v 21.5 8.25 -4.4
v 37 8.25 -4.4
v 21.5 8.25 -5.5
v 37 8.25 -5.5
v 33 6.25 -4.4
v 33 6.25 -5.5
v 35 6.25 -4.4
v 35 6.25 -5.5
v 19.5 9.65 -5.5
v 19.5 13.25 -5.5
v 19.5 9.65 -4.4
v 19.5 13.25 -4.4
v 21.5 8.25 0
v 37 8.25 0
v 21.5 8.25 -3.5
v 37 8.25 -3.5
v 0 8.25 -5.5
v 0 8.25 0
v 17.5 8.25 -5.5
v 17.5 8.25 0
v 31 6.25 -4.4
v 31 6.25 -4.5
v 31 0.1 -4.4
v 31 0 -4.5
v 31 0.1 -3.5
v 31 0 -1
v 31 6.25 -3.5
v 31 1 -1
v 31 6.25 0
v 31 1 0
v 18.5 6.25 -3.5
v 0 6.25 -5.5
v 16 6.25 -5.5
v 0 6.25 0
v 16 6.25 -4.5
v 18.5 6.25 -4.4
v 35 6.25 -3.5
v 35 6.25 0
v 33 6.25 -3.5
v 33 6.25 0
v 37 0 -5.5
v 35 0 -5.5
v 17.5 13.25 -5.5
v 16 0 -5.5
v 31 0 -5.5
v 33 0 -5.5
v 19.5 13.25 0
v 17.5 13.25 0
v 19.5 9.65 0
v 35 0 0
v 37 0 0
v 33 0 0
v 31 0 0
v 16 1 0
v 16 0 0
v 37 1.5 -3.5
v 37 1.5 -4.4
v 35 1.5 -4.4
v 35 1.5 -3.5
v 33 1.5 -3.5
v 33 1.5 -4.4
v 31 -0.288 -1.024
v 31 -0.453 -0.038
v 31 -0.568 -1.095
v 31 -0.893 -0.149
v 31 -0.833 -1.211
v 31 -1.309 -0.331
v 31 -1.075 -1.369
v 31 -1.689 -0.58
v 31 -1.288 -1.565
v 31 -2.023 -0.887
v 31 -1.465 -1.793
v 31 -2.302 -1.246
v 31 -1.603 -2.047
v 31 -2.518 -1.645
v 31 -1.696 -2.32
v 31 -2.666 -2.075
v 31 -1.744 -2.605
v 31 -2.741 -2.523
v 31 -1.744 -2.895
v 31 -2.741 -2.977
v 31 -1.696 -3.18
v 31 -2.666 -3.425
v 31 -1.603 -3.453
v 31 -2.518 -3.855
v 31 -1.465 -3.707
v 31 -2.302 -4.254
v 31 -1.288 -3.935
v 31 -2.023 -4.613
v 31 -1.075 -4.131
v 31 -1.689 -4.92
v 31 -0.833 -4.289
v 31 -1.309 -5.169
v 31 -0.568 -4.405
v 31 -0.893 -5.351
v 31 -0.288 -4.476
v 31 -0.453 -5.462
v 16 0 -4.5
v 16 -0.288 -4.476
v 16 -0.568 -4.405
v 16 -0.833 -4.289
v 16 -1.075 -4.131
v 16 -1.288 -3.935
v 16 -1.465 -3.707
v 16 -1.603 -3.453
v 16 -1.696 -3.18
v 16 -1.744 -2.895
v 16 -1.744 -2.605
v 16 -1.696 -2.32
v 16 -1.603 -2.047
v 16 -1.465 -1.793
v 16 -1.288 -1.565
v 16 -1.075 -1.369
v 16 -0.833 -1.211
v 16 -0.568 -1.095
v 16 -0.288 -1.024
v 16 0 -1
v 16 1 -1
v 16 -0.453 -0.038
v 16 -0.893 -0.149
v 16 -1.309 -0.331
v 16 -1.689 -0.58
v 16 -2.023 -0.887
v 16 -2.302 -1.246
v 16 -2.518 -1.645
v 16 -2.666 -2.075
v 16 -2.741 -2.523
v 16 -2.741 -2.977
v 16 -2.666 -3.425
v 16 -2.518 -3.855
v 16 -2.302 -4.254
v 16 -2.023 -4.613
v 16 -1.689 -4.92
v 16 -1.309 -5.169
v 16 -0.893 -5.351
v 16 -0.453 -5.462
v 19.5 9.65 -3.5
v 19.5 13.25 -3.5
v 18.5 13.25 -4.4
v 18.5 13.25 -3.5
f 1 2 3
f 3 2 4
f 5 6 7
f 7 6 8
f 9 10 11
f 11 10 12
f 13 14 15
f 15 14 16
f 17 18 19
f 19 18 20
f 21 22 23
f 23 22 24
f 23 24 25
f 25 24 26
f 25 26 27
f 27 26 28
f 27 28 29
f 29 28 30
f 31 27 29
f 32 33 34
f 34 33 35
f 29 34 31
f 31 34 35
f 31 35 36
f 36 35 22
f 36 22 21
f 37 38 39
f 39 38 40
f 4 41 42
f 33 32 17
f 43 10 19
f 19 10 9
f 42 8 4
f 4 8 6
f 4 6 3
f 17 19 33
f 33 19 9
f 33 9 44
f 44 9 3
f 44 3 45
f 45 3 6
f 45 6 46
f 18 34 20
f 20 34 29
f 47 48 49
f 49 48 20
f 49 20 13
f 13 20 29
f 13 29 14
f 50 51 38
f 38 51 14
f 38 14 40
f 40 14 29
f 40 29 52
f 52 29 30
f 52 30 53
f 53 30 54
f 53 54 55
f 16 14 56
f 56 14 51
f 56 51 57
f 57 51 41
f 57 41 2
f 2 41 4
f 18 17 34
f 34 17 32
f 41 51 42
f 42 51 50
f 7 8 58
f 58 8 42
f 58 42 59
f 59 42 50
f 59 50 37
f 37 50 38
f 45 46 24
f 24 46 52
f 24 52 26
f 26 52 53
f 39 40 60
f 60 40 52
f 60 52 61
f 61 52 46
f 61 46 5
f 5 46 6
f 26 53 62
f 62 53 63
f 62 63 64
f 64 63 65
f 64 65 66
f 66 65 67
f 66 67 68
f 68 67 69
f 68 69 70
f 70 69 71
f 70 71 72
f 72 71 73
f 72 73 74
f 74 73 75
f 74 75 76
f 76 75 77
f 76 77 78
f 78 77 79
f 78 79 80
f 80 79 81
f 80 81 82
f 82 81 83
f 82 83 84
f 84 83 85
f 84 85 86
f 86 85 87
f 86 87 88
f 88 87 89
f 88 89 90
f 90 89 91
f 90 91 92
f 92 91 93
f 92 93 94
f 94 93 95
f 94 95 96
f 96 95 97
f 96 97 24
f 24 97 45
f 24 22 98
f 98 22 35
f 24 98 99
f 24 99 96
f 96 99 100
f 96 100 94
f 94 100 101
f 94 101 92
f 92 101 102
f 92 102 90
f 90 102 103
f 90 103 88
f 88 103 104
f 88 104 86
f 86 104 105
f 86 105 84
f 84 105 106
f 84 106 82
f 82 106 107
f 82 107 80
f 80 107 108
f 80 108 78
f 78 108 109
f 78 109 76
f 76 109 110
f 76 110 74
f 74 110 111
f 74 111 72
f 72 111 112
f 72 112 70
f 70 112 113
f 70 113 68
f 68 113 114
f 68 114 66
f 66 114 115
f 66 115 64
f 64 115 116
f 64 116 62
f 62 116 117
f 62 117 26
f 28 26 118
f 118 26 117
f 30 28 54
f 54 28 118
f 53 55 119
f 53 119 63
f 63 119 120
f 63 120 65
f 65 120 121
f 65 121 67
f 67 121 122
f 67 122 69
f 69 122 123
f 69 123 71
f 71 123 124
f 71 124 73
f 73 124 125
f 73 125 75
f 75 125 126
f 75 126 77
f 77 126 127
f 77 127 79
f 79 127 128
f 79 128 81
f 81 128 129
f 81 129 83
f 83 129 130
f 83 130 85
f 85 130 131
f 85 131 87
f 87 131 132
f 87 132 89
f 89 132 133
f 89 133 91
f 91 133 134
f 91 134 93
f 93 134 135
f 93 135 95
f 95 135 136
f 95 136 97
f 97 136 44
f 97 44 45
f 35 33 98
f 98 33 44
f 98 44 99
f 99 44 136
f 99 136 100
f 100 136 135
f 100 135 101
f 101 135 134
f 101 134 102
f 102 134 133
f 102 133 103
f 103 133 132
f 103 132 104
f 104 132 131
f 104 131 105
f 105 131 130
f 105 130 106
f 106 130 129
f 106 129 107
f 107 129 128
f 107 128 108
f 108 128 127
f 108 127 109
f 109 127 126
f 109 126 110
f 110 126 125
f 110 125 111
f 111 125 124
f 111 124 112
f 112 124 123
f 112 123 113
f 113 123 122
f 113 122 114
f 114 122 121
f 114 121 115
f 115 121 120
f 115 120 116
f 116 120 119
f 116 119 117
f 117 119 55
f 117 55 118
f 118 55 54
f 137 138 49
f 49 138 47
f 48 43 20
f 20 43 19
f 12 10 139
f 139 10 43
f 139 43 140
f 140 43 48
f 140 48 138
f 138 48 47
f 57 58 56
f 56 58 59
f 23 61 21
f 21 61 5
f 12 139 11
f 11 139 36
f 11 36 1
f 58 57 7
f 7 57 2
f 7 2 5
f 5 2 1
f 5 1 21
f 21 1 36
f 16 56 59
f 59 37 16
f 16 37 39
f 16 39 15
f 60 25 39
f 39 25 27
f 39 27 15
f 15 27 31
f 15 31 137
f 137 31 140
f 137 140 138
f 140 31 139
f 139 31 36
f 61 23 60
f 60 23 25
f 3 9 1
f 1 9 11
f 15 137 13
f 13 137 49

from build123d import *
from OCP.BRepFilletAPI import BRepFilletAPI_MakeChamfer

# Parameters (mm, degrees)
SKETCH1_W           = 5.5
SKETCH1_H           = 2
BOSS_EXTRUDE1_DEPTH = 37
BOSS_EXTRUDE2_START = 35
SKETCH1_3_W         = 5.5
SKETCH1_3_H         = 6.25
BOSS_EXTRUDE2_DEPTH = 2
BOSS_EXTRUDE3_START = 31
SKETCH1_4_W         = 5.5
SKETCH1_4_H         = 6.25
BOSS_EXTRUDE3_DEPTH = 2
BOSS_EXTRUDE5_START = 16
BOSS_EXTRUDE5_DEPTH = 15
SKETCH2_W           = 2
SKETCH2_H           = 5.5
BOSS_EXTRUDE6_DEPTH = 5
SKETCH3_W           = 0.9
SKETCH3_H           = 12.159990002
CUT_EXTRUDE1_DEPTH  = 18.5
CHAMFER1_SIZE2      = 2
CHAMFER1_SIZE       = 1.400415076
CHAMFER2_SIZE       = 2
CHAMFER2_SIZE2      = 1.400415076


with BuildPart() as part:
    # Sketch1 → Boss-Extrude1 (new body)
    with BuildSketch(Plane(origin=(0, 0, 0), x_dir=(0, 0, -1), z_dir=(1, 0, 0))):
        with Locations((2.75, 7.25)):
            Rectangle(SKETCH1_W, SKETCH1_H)
    extrude(amount=BOSS_EXTRUDE1_DEPTH)

    # Sketch1<3> → Boss-Extrude2 (add)
    with BuildSketch(Plane(origin=(0, 0, 0), x_dir=(0, 0, -1), z_dir=(1, 0, 0)).offset(BOSS_EXTRUDE2_START)):
        with Locations((2.75, 3.125)):
            Rectangle(SKETCH1_3_W, SKETCH1_3_H)
    extrude(amount=BOSS_EXTRUDE2_DEPTH)

    # Sketch1<4> → Boss-Extrude3 (add)
    with BuildSketch(Plane(origin=(0, 0, 0), x_dir=(0, 0, -1), z_dir=(1, 0, 0)).offset(BOSS_EXTRUDE3_START)):
        with Locations((2.75, 3.125)):
            Rectangle(SKETCH1_4_W, SKETCH1_4_H)
    extrude(amount=BOSS_EXTRUDE3_DEPTH)

    # Sketch1<6> → Boss-Extrude5 (add)
    with BuildSketch(Plane(origin=(0, 0, 0), x_dir=(0, 0, -1), z_dir=(1, 0, 0)).offset(BOSS_EXTRUDE5_START)):
        with BuildLine():
            Line((0, 1), (0, 0))
            ThreePointArc((0, 0), (2.75, -2.75), (5.5, 0))
            Line((5.5, 0), (5.5, 6.25))
            Line((5.5, 6.25), (4.5, 6.25))
            Line((4.5, 6.25), (4.5, 0))
            ThreePointArc((4.5, 0), (2.75, -1.75), (1, 0))
            Line((1, 0), (1, 1))
            Line((1, 1), (0, 1))
        make_face()
    extrude(amount=BOSS_EXTRUDE5_DEPTH)

    # Sketch2 → Boss-Extrude6 (add)
    with BuildSketch(Plane(origin=(0, 8.25, 0), x_dir=(1, 0, 0), z_dir=(0, 1, 0))):
        with Locations((18.5, 2.75)):
            Rectangle(SKETCH2_W, SKETCH2_H)
    extrude(amount=BOSS_EXTRUDE6_DEPTH)

    # Sketch3 → Cut-Extrude1 (cut)
    with BuildSketch(Plane(origin=(37, 0, 0), x_dir=(0, 0, -1), z_dir=(1, 0, 0))):
        with Locations((3.95, 7.579995001)):
            Rectangle(SKETCH3_W, SKETCH3_H)
    extrude(amount=-CUT_EXTRUDE1_DEPTH, mode=Mode.SUBTRACT)

    # Chamfer1
    chamfer1_edges = [part.edges().sort_by_distance(p)[0] for p in [
        (31, 1.5, -3.95),
    ]]
    chamfer1_side = [part.faces().sort_by_distance(p)[0] for p in [
        (31, 1.471991698, -3.95),
    ]]
    chamfer(chamfer1_edges, length=CHAMFER1_SIZE - 0.0001, length2=CHAMFER1_SIZE2 - 0.0001, reference=chamfer1_side[0])  # a hair under: the kernel refuses the full size

    # Chamfer2: one chamfer whose edges measure the first distance from different faces: ONE call of the kernel's chamfer builder (chamfer() names one face for all edges)
    chamfer2_edges_1 = [part.edges().sort_by_distance(p)[0] for p in [
        (19.5, 8.25, -1.75),
    ]]
    chamfer2_side_1 = [part.faces().sort_by_distance(p)[0] for p in [
        (28.25, 8.25, -1.75),
    ]]
    chamfer2_edges_2 = [part.edges().sort_by_distance(p)[0] for p in [
        (19.5, 8.25, -4.95),
    ]]
    chamfer2_side_2 = [part.faces().sort_by_distance(p)[0] for p in [
        (28.25, 8.25, -4.95),
    ]]
    chamfer2 = BRepFilletAPI_MakeChamfer(part.part.solid().wrapped)
    for e in chamfer2_edges_1:
        chamfer2.Add(CHAMFER2_SIZE, CHAMFER2_SIZE2, e.wrapped, chamfer2_side_1[0].wrapped)  # the first distance lies on this face
    for e in chamfer2_edges_2:
        chamfer2.Add(CHAMFER2_SIZE, CHAMFER2_SIZE2, e.wrapped, chamfer2_side_2[0].wrapped)  # the first distance lies on this face
    add(Compound.cast(chamfer2.Shape()), mode=Mode.REPLACE)


solid = part.part
